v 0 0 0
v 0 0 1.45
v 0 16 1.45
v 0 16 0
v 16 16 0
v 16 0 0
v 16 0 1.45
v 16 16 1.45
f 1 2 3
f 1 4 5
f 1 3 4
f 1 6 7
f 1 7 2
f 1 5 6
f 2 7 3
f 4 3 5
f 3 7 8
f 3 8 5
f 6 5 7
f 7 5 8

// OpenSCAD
/* Warning, this is a very basic generator with a lot of approximation 
input data : [LFBGA, QKC, 16x16x1.45mm, 536, , A, C04-25580A]
generated by com.zoubworld.electronics.cad.model3d.Basic
Date : Sun Feb 15 10:50:49 CET 2026
*/

//body
color("black")
translate([0,0,0])
cube([16.0,16.0,1.45], center=false);
